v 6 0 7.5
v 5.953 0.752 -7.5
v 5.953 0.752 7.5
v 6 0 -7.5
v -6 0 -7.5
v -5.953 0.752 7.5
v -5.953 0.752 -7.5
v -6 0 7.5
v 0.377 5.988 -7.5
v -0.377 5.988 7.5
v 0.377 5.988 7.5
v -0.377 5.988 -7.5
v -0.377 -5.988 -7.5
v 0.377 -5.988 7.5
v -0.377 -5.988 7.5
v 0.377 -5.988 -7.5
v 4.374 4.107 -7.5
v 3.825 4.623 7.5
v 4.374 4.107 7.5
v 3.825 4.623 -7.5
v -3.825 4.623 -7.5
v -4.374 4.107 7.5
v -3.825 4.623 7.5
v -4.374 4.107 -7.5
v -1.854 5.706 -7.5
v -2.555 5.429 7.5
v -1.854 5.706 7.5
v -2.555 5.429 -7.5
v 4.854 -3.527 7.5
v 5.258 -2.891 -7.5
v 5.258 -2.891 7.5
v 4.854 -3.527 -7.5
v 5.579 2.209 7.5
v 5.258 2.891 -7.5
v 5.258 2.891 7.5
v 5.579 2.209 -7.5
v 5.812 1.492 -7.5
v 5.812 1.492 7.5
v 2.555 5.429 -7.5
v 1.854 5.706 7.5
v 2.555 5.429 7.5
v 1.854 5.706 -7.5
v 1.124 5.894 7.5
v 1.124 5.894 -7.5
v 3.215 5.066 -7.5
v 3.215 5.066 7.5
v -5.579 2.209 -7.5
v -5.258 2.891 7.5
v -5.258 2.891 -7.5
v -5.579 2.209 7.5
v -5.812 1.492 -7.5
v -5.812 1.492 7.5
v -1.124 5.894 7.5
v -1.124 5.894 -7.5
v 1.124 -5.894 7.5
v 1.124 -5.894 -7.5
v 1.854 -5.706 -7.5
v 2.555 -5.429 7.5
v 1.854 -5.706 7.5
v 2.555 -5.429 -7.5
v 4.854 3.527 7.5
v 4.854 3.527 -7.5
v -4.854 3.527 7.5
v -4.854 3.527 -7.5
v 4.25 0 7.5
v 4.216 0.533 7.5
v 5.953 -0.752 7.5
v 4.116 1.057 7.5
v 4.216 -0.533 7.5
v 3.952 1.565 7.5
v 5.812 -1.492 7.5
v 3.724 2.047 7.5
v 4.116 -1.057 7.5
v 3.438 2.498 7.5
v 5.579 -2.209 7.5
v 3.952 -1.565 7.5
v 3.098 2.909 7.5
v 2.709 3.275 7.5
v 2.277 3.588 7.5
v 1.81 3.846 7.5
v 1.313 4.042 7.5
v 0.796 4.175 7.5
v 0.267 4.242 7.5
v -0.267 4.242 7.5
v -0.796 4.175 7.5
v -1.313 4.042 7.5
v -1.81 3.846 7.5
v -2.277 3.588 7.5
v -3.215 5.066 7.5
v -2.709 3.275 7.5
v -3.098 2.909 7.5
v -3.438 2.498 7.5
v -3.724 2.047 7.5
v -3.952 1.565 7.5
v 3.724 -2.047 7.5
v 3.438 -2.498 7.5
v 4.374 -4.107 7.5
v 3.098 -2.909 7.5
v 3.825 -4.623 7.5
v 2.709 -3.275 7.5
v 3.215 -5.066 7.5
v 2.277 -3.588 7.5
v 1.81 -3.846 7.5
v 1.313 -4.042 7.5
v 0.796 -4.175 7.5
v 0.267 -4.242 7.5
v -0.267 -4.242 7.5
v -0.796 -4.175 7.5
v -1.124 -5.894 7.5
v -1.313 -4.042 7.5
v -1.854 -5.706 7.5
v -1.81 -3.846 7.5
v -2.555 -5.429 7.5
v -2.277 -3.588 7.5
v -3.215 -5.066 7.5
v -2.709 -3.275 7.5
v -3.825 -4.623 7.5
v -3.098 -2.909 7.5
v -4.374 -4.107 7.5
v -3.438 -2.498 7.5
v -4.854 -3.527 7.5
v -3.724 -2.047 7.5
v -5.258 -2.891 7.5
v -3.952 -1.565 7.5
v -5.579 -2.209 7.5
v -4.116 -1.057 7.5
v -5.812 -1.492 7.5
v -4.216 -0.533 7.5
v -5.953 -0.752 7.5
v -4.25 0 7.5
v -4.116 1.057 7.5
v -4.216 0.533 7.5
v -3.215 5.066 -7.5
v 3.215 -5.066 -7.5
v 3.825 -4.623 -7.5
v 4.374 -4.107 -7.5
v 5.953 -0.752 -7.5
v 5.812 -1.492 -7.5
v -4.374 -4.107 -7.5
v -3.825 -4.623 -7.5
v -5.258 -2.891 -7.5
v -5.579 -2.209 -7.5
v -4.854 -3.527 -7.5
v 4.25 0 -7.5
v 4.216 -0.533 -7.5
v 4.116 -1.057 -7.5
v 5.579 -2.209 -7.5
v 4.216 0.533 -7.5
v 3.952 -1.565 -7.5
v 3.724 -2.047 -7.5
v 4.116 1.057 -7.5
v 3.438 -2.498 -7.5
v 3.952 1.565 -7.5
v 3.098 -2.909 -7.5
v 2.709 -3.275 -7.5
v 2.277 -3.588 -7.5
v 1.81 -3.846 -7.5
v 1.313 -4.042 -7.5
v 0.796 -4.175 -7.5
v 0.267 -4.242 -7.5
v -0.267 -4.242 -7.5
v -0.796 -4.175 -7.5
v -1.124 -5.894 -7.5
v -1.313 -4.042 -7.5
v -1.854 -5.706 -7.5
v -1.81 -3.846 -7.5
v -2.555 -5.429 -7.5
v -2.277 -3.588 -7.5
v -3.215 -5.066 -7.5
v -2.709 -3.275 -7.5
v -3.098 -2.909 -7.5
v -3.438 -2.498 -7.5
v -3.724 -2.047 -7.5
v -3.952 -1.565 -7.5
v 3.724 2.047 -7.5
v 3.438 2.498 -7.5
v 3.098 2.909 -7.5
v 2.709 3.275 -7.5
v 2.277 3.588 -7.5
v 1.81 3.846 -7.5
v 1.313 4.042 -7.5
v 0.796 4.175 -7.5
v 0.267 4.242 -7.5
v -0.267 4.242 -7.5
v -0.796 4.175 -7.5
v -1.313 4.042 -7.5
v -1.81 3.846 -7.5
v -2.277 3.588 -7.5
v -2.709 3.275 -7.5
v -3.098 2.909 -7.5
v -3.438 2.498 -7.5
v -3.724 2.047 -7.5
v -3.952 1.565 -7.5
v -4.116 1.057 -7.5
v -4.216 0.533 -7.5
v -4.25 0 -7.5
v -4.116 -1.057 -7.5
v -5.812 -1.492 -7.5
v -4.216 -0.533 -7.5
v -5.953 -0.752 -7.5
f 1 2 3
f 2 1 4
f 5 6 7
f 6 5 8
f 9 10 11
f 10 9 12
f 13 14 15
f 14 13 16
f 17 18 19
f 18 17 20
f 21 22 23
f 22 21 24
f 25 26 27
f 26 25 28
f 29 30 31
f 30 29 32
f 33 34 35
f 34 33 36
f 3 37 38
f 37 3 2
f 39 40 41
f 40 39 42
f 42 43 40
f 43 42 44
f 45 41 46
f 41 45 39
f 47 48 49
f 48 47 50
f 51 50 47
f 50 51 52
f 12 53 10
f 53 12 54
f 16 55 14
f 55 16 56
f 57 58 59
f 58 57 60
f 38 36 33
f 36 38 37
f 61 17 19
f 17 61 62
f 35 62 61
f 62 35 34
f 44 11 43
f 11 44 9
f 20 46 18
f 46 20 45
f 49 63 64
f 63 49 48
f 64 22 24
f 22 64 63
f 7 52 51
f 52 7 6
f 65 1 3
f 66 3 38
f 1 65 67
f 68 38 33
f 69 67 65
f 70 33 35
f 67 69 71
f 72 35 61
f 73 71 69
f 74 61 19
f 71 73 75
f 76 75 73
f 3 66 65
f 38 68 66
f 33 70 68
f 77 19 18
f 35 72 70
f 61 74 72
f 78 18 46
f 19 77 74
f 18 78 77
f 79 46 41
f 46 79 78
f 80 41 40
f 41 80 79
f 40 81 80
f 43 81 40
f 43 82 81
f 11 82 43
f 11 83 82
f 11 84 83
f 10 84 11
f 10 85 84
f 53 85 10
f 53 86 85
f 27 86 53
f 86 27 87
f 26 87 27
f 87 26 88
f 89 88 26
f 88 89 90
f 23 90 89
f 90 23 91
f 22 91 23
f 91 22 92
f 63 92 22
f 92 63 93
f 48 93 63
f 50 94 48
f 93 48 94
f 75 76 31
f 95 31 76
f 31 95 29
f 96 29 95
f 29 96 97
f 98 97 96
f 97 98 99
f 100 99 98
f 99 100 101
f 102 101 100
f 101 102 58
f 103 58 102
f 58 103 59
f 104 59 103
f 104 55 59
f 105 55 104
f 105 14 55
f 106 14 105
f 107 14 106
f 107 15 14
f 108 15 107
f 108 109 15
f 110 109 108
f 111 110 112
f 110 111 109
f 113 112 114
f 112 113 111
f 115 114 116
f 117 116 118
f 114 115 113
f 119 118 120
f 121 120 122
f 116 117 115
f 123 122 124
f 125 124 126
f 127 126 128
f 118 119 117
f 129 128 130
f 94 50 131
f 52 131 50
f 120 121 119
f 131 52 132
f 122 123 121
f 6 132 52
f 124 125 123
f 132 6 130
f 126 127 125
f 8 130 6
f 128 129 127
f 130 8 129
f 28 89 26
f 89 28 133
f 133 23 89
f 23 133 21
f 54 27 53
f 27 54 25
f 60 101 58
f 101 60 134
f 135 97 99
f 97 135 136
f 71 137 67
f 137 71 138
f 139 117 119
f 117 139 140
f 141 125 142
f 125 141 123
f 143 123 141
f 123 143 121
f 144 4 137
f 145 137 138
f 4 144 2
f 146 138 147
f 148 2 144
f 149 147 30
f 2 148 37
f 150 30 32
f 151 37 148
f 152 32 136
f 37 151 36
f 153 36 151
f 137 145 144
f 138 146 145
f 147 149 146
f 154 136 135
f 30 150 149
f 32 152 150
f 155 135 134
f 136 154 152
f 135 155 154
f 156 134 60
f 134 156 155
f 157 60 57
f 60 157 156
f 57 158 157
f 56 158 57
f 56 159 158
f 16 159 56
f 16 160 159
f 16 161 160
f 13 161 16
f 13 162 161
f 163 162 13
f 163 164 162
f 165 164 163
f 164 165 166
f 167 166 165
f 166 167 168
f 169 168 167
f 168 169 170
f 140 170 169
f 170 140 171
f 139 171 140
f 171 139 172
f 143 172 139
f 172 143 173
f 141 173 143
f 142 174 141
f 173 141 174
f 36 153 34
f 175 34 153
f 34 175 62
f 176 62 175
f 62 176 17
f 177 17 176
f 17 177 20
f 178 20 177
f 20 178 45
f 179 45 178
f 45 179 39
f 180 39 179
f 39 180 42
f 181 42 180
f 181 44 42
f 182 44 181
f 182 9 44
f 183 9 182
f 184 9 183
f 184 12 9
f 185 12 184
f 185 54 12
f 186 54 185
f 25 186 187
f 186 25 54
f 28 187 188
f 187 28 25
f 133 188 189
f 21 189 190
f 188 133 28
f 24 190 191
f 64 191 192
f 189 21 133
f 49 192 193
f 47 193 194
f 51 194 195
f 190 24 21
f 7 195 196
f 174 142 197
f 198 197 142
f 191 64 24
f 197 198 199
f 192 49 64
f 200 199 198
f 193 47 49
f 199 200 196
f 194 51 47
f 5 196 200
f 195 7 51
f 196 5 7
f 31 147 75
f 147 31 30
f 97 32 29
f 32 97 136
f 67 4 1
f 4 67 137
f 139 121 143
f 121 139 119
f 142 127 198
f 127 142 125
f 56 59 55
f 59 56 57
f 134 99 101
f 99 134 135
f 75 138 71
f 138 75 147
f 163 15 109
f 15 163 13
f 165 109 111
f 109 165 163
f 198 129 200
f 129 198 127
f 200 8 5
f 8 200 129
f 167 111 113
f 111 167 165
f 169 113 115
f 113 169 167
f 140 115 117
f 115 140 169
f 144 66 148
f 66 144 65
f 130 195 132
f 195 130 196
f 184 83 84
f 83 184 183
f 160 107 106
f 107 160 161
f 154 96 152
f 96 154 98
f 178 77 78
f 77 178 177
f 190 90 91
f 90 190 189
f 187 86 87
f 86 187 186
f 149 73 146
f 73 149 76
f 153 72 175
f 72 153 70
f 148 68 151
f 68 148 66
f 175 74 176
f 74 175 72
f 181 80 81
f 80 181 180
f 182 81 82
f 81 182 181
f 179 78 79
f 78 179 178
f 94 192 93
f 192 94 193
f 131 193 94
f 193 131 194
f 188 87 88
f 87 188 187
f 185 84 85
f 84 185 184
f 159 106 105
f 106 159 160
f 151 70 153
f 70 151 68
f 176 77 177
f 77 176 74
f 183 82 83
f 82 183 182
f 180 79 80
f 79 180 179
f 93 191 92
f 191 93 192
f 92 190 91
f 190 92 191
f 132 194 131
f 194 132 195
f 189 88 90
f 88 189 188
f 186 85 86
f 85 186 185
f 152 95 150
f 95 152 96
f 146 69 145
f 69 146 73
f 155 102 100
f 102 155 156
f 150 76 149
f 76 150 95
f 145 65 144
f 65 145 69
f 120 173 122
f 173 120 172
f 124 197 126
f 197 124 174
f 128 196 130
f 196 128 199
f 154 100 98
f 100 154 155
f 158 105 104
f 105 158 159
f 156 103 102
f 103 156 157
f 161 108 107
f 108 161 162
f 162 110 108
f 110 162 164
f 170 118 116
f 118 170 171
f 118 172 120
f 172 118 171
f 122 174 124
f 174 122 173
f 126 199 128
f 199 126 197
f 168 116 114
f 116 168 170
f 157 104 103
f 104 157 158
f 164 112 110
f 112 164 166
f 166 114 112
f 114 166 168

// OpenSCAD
$fn = 50;


difference() {
	union() {
		translate(v = [0, 0, -7.5000000000]) {
			cylinder(h = 15, r = 6.0000000000);
		}
	}
	union() {
		translate(v = [0, 0, -100.0000000000]) {
			cylinder(h = 200, r = 4.2500000000);
		}
	}
}
